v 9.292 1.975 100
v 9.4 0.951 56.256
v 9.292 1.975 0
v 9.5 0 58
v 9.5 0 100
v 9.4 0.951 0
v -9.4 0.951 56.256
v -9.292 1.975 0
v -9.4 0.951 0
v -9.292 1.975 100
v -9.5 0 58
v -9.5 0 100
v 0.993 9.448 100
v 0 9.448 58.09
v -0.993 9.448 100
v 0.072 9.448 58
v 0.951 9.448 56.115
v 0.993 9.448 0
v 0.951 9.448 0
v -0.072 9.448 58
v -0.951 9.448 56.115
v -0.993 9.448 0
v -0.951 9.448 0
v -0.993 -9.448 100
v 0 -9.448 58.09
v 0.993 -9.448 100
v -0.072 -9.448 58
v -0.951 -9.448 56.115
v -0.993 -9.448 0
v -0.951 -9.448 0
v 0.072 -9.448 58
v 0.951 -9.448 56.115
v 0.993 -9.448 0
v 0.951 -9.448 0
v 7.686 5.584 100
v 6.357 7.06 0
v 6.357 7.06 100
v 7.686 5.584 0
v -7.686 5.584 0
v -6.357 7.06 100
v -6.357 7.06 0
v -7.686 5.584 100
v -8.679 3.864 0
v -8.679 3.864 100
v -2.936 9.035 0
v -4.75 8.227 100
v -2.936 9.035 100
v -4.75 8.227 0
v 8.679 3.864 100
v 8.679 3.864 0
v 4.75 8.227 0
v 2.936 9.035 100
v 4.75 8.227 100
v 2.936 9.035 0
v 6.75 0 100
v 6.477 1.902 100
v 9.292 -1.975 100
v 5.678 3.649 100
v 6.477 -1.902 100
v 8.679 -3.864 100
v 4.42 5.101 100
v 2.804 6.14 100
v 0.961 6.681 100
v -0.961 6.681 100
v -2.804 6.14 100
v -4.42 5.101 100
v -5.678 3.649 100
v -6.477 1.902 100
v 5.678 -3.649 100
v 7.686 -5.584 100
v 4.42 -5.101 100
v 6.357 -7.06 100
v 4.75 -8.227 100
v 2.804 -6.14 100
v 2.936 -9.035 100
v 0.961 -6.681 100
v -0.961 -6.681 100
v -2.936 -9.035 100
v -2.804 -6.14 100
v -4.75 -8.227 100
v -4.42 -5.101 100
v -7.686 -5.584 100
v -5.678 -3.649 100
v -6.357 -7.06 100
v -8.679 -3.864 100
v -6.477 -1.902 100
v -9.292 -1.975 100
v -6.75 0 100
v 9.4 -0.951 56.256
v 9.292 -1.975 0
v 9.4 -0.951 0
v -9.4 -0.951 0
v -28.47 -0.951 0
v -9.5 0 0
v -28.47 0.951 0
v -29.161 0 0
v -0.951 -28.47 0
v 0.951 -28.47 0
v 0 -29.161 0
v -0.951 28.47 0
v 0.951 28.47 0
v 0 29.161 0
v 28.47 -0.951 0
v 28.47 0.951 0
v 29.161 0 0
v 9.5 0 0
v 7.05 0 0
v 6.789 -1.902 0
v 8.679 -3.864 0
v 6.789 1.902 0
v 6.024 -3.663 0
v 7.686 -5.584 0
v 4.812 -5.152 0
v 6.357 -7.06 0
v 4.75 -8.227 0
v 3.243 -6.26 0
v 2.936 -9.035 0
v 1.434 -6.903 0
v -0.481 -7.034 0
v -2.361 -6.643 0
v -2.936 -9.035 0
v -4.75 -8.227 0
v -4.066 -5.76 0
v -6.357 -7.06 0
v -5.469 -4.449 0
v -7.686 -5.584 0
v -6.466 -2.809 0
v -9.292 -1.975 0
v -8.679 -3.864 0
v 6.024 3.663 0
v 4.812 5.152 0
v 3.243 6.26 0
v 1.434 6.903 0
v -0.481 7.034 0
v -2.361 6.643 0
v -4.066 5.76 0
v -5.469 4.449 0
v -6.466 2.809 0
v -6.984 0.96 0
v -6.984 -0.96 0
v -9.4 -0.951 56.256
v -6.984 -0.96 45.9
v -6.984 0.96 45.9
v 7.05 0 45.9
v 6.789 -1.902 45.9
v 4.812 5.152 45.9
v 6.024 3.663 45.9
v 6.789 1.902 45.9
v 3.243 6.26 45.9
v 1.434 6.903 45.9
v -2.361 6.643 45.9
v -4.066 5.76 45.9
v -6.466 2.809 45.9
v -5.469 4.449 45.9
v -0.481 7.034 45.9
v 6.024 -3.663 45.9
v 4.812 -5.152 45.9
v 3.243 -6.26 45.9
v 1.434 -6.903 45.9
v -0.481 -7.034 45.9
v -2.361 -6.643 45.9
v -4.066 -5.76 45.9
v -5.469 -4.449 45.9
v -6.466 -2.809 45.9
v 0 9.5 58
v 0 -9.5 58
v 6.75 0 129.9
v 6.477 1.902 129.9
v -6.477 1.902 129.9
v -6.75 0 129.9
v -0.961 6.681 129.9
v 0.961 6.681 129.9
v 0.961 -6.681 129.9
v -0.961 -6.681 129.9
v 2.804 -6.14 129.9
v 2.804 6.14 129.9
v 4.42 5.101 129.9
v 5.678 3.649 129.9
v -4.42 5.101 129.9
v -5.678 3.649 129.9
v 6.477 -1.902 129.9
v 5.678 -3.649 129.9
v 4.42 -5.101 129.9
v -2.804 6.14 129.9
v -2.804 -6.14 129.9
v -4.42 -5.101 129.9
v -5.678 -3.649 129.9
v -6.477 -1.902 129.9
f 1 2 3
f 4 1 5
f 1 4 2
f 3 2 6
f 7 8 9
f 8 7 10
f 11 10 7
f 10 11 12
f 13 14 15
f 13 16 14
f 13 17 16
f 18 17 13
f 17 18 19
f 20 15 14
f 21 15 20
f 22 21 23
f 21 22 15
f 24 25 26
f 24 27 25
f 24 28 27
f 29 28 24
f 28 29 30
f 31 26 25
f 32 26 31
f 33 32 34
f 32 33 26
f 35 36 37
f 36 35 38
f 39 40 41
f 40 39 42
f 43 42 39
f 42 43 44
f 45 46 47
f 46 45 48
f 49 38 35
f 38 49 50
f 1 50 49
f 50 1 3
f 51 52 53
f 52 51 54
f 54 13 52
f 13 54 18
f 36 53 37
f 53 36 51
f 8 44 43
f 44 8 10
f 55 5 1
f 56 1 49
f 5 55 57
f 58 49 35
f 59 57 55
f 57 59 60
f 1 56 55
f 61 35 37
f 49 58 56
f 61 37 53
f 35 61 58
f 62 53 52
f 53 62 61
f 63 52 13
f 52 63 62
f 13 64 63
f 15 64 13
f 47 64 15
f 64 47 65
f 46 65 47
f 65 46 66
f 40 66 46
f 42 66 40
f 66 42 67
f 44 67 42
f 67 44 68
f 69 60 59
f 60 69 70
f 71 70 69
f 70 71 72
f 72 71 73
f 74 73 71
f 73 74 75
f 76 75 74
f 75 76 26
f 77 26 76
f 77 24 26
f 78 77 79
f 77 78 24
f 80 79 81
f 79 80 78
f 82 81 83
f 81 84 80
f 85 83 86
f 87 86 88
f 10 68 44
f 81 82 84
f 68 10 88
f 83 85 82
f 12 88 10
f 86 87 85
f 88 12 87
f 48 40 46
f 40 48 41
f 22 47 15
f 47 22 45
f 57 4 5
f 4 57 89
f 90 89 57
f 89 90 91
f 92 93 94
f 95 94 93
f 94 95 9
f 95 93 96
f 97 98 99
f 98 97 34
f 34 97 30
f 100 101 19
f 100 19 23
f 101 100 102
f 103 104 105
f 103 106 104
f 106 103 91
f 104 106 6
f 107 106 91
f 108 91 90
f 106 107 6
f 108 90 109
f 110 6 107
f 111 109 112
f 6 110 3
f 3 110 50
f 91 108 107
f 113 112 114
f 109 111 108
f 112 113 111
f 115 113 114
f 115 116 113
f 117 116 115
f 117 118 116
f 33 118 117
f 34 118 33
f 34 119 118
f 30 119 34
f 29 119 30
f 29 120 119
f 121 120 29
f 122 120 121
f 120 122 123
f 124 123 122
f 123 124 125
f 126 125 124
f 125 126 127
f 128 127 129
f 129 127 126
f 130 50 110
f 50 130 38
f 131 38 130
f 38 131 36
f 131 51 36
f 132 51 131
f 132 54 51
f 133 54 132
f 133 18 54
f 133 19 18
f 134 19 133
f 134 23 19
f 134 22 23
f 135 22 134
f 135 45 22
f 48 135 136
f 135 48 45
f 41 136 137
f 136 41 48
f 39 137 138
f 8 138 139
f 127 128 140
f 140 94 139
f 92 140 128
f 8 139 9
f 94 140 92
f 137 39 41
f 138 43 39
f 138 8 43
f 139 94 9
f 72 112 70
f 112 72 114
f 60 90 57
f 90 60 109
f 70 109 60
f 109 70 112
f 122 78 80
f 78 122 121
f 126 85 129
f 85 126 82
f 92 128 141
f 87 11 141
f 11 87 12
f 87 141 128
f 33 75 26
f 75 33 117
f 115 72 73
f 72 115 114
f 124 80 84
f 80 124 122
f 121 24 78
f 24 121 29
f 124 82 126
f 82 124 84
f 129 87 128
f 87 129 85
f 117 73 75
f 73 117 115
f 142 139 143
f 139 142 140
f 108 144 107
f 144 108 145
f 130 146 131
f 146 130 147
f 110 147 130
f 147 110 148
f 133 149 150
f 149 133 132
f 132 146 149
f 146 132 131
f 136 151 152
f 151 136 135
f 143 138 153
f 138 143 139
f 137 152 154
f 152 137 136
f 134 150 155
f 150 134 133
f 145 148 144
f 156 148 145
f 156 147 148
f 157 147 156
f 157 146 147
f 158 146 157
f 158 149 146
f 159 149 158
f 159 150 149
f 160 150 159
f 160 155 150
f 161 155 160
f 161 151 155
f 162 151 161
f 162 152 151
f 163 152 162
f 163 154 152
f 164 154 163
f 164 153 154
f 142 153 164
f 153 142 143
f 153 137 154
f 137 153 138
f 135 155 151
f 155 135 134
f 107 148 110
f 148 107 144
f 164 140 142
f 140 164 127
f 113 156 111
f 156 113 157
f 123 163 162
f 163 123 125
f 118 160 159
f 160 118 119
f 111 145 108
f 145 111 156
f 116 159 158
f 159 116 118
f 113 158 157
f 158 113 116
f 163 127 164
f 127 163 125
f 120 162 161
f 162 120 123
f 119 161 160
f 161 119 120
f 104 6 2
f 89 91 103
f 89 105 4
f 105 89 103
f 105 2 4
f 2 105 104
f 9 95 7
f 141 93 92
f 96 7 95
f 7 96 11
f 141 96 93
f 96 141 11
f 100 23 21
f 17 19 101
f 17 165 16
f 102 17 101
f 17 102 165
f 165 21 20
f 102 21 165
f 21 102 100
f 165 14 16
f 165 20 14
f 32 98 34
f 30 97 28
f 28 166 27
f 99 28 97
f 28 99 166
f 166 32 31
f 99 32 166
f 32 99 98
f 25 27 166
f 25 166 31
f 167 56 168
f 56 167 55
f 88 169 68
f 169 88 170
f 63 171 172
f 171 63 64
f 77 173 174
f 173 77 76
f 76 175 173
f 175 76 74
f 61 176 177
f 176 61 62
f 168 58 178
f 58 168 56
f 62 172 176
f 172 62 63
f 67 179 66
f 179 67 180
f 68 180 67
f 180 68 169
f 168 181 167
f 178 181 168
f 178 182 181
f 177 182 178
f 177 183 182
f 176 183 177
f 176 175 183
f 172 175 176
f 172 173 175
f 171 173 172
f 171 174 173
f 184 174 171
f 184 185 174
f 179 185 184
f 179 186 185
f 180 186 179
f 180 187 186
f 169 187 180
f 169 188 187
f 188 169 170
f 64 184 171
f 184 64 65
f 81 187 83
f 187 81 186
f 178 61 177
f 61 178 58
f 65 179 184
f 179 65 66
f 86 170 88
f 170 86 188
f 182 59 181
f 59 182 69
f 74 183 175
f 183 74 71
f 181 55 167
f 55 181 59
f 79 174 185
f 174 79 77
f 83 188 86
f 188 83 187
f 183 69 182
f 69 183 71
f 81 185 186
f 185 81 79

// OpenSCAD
module fin() {
	finT = 60;
	finX = 20;
	hull() {
		translate([0,0,1])
		sphere(r=1);
		
		translate([finX,0,1])
		sphere(r=1);
		
		translate([0,0,finT])
		sphere(r=1);
	}
}

h = 100;
union() {
	translate([0,0,h-0.1])
	cylinder(r=13.5/2,h=30);

	difference() {
		cylinder(r=19/2,h=h);
		
		translate([0,0,-0.1])
		cylinder(r=14.1/2,h=46);
	}

	fins = 1;
	translate([0,0,-2])
	if( fins ) {	
		difference() {
			union() {
				translate([17/2,0,0])
				fin();

				translate([-17/2,0,0])
				mirror([1,0,0])
				fin();

				rotate(90,[0,0,1])
				translate([17/2,0,0])
				fin();

				rotate(-90,[0,0,1])
				translate([17/2,0,0])
				fin();
			}
			translate([-50,-50,-98])
			cube([100,100,100]);
		}
	}
	
	dome=0;
	if( dome ) {
		difference() {
			translate([0,0,h])
			scale([1,1,5])
			sphere(r=19/2);
			
			cylinder(r=19/2,h=h);
		}
	}
}
